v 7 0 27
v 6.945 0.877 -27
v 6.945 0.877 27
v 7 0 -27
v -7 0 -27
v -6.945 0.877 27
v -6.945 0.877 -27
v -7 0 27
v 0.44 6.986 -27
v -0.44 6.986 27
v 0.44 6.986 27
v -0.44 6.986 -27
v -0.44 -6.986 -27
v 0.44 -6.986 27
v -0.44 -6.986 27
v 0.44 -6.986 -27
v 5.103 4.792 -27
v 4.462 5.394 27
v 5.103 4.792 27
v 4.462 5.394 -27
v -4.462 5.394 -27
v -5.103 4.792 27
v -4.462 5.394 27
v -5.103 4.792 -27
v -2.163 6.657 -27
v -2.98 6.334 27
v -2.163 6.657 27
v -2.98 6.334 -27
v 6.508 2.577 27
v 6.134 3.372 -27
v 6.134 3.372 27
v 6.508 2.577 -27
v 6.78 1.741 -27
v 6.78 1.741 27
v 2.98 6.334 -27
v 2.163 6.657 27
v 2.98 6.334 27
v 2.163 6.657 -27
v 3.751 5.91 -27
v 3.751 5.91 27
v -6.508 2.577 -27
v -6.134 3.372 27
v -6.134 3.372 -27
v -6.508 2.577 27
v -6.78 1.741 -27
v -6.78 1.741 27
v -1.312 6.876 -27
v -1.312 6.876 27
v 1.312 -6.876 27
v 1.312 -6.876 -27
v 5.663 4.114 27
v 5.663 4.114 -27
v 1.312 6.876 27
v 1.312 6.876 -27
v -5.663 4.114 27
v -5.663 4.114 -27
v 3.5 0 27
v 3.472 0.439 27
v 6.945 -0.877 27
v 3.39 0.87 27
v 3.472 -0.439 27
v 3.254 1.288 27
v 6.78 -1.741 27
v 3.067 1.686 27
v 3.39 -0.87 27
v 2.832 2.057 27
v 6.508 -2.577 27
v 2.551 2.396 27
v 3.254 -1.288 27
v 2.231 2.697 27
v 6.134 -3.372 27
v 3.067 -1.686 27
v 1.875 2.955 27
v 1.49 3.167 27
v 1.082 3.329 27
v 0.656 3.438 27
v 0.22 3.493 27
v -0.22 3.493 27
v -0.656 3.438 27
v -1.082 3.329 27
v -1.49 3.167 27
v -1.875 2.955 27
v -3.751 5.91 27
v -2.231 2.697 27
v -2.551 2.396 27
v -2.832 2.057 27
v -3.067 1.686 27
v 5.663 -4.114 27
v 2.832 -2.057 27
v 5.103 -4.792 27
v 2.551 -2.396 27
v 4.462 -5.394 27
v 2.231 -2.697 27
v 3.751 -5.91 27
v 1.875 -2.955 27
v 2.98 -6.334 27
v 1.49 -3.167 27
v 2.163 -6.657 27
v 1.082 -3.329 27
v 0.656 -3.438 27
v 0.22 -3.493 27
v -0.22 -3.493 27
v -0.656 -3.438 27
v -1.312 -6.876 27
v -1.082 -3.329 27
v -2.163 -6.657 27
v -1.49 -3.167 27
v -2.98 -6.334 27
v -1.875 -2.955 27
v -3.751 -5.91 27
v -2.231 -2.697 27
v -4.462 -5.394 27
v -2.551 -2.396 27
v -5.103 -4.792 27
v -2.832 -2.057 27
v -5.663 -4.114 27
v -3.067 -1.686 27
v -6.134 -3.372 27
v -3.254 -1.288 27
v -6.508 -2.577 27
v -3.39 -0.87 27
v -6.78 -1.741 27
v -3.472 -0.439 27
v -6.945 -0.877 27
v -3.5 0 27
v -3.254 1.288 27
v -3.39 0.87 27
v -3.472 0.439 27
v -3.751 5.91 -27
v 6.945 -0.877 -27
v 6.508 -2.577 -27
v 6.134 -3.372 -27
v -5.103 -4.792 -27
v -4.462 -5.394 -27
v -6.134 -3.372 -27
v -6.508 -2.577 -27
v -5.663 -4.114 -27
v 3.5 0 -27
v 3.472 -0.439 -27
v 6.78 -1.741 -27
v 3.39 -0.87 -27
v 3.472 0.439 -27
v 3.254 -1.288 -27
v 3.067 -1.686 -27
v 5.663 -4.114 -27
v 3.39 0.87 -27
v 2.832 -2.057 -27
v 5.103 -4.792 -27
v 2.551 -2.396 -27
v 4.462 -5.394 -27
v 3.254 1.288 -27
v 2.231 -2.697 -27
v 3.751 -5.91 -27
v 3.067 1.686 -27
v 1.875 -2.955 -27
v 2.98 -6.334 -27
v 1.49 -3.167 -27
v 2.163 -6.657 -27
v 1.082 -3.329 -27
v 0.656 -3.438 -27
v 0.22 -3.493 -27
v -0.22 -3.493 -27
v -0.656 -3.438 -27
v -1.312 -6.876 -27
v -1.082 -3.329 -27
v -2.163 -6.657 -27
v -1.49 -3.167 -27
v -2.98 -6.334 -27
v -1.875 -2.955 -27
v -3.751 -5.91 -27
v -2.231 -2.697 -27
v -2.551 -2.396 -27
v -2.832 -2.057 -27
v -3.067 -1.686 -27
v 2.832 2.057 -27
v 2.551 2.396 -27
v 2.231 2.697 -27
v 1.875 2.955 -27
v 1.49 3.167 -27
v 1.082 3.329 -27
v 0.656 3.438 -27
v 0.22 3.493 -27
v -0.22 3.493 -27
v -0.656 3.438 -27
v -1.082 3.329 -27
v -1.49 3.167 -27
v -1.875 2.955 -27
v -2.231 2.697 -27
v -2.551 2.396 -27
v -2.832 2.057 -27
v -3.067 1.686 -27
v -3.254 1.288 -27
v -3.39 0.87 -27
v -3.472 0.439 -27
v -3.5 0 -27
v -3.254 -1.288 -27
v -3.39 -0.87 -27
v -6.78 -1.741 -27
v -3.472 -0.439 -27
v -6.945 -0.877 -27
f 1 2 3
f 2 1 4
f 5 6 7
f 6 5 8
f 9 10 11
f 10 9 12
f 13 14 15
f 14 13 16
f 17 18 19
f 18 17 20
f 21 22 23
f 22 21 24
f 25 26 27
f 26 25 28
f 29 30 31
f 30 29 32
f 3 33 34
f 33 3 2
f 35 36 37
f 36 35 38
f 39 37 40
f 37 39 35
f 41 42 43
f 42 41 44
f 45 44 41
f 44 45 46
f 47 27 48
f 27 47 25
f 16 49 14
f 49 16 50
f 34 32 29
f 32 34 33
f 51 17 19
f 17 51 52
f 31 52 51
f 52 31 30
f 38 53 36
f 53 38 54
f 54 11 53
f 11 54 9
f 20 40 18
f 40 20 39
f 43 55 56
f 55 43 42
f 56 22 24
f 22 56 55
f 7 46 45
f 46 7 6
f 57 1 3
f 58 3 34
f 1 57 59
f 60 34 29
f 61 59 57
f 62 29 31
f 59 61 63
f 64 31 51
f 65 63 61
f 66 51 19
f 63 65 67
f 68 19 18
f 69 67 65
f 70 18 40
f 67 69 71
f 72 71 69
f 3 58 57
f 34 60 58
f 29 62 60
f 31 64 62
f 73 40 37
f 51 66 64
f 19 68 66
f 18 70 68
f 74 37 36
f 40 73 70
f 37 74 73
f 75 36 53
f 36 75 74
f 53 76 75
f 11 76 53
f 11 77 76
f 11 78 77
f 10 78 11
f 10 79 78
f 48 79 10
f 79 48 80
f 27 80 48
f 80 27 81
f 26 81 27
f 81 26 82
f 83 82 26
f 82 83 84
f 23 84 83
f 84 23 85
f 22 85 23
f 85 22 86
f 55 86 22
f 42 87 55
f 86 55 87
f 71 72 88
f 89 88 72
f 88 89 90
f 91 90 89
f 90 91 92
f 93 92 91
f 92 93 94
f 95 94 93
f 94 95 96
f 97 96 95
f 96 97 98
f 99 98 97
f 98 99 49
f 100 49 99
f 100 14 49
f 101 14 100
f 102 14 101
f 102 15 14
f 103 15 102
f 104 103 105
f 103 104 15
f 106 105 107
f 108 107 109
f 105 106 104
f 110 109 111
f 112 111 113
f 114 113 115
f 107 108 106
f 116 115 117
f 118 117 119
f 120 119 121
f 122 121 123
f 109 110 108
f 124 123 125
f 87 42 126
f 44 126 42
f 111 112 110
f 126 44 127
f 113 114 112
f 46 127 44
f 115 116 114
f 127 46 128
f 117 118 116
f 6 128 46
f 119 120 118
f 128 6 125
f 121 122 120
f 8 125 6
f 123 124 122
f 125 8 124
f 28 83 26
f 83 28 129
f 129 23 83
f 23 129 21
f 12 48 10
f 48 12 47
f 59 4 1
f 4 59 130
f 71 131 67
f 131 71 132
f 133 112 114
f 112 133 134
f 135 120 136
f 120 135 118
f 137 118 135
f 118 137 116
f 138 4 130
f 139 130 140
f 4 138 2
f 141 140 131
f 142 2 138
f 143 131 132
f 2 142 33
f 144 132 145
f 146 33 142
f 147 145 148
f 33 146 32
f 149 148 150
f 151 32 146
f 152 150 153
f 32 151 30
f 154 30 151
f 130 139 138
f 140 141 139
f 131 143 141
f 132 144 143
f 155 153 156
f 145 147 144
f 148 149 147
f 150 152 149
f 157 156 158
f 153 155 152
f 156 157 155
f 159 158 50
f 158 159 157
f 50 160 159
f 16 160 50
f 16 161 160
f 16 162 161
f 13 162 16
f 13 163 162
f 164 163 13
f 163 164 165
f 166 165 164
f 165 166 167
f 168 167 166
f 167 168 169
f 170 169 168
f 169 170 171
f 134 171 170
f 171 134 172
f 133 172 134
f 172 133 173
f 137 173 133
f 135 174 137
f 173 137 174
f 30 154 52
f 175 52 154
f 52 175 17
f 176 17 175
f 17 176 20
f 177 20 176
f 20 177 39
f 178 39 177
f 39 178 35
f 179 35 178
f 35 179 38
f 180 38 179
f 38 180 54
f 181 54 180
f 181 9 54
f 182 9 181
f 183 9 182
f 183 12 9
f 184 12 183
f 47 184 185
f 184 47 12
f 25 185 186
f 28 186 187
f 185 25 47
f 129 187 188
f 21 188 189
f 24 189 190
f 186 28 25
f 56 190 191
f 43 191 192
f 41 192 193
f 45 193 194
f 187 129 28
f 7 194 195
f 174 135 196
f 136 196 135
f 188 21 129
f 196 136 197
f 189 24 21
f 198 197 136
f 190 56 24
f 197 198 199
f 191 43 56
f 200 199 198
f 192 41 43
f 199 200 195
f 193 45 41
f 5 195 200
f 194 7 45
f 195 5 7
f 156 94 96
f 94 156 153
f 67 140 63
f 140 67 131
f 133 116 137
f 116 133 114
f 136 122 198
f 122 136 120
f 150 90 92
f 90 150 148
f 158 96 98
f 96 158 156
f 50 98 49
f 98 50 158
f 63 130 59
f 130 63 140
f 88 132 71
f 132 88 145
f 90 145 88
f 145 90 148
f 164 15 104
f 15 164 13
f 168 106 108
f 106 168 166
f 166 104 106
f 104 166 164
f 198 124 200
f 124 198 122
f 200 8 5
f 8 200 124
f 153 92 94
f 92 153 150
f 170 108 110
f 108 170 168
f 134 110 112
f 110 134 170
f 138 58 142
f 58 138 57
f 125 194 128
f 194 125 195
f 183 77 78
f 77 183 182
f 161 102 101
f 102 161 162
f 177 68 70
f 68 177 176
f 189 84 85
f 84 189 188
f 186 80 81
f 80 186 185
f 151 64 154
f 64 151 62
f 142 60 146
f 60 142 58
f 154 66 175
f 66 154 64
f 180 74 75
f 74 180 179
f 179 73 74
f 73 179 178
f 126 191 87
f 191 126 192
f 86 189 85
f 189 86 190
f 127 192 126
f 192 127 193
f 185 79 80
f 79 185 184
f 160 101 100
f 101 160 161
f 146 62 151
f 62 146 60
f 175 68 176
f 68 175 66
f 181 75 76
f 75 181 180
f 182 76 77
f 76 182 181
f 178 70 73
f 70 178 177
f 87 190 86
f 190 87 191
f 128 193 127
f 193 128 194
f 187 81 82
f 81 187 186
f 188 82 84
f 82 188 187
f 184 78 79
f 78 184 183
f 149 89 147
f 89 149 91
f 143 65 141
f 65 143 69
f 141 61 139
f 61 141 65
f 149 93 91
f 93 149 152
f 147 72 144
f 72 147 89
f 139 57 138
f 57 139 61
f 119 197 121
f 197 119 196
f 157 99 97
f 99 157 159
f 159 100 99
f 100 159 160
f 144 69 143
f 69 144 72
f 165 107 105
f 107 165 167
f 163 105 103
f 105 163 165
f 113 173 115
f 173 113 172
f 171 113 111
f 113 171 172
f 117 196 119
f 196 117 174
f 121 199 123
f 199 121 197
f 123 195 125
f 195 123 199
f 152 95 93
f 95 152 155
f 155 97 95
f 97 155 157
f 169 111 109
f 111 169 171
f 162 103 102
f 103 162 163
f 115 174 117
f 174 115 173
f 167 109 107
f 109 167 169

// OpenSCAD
$fn = 50;


difference() {
	union() {
		translate(v = [0, 0, -27.0000000000]) {
			cylinder(h = 54, r = 7.0000000000);
		}
	}
	union() {
		translate(v = [0, 0, -100.0000000000]) {
			cylinder(h = 200, r = 3.5000000000);
		}
	}
}
